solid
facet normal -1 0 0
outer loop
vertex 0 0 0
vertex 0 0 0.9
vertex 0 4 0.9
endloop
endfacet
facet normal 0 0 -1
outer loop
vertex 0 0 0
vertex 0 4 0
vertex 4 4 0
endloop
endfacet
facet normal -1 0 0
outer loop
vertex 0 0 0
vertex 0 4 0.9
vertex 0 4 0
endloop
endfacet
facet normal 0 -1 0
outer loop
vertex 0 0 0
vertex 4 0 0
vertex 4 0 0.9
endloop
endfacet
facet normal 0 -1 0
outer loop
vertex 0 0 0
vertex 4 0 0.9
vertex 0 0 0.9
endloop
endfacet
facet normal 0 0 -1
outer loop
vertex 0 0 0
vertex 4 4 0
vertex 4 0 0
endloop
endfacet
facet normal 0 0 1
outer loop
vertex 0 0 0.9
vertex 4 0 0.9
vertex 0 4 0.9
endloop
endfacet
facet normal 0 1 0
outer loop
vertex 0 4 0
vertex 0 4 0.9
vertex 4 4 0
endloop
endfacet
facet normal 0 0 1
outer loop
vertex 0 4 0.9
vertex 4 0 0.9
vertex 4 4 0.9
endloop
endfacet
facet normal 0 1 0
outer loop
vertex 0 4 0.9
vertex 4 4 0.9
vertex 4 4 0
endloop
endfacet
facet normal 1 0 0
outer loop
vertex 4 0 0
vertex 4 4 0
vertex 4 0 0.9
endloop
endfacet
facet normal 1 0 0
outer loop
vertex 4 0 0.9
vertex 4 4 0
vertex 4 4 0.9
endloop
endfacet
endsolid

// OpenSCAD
/* Warning, this is a very basic generator with a lot of approximation 
input data : [QFN, JUX, 4x4x0.9mm, 24, , B, C04-00143B]
generated by com.zoubworld.electronics.cad.model3d.Basic
Date : Sun Feb 15 10:50:48 CET 2026
*/

//body
color("black")
translate([0,0,0])
cube([4.0,4.0,0.9], center=false);
